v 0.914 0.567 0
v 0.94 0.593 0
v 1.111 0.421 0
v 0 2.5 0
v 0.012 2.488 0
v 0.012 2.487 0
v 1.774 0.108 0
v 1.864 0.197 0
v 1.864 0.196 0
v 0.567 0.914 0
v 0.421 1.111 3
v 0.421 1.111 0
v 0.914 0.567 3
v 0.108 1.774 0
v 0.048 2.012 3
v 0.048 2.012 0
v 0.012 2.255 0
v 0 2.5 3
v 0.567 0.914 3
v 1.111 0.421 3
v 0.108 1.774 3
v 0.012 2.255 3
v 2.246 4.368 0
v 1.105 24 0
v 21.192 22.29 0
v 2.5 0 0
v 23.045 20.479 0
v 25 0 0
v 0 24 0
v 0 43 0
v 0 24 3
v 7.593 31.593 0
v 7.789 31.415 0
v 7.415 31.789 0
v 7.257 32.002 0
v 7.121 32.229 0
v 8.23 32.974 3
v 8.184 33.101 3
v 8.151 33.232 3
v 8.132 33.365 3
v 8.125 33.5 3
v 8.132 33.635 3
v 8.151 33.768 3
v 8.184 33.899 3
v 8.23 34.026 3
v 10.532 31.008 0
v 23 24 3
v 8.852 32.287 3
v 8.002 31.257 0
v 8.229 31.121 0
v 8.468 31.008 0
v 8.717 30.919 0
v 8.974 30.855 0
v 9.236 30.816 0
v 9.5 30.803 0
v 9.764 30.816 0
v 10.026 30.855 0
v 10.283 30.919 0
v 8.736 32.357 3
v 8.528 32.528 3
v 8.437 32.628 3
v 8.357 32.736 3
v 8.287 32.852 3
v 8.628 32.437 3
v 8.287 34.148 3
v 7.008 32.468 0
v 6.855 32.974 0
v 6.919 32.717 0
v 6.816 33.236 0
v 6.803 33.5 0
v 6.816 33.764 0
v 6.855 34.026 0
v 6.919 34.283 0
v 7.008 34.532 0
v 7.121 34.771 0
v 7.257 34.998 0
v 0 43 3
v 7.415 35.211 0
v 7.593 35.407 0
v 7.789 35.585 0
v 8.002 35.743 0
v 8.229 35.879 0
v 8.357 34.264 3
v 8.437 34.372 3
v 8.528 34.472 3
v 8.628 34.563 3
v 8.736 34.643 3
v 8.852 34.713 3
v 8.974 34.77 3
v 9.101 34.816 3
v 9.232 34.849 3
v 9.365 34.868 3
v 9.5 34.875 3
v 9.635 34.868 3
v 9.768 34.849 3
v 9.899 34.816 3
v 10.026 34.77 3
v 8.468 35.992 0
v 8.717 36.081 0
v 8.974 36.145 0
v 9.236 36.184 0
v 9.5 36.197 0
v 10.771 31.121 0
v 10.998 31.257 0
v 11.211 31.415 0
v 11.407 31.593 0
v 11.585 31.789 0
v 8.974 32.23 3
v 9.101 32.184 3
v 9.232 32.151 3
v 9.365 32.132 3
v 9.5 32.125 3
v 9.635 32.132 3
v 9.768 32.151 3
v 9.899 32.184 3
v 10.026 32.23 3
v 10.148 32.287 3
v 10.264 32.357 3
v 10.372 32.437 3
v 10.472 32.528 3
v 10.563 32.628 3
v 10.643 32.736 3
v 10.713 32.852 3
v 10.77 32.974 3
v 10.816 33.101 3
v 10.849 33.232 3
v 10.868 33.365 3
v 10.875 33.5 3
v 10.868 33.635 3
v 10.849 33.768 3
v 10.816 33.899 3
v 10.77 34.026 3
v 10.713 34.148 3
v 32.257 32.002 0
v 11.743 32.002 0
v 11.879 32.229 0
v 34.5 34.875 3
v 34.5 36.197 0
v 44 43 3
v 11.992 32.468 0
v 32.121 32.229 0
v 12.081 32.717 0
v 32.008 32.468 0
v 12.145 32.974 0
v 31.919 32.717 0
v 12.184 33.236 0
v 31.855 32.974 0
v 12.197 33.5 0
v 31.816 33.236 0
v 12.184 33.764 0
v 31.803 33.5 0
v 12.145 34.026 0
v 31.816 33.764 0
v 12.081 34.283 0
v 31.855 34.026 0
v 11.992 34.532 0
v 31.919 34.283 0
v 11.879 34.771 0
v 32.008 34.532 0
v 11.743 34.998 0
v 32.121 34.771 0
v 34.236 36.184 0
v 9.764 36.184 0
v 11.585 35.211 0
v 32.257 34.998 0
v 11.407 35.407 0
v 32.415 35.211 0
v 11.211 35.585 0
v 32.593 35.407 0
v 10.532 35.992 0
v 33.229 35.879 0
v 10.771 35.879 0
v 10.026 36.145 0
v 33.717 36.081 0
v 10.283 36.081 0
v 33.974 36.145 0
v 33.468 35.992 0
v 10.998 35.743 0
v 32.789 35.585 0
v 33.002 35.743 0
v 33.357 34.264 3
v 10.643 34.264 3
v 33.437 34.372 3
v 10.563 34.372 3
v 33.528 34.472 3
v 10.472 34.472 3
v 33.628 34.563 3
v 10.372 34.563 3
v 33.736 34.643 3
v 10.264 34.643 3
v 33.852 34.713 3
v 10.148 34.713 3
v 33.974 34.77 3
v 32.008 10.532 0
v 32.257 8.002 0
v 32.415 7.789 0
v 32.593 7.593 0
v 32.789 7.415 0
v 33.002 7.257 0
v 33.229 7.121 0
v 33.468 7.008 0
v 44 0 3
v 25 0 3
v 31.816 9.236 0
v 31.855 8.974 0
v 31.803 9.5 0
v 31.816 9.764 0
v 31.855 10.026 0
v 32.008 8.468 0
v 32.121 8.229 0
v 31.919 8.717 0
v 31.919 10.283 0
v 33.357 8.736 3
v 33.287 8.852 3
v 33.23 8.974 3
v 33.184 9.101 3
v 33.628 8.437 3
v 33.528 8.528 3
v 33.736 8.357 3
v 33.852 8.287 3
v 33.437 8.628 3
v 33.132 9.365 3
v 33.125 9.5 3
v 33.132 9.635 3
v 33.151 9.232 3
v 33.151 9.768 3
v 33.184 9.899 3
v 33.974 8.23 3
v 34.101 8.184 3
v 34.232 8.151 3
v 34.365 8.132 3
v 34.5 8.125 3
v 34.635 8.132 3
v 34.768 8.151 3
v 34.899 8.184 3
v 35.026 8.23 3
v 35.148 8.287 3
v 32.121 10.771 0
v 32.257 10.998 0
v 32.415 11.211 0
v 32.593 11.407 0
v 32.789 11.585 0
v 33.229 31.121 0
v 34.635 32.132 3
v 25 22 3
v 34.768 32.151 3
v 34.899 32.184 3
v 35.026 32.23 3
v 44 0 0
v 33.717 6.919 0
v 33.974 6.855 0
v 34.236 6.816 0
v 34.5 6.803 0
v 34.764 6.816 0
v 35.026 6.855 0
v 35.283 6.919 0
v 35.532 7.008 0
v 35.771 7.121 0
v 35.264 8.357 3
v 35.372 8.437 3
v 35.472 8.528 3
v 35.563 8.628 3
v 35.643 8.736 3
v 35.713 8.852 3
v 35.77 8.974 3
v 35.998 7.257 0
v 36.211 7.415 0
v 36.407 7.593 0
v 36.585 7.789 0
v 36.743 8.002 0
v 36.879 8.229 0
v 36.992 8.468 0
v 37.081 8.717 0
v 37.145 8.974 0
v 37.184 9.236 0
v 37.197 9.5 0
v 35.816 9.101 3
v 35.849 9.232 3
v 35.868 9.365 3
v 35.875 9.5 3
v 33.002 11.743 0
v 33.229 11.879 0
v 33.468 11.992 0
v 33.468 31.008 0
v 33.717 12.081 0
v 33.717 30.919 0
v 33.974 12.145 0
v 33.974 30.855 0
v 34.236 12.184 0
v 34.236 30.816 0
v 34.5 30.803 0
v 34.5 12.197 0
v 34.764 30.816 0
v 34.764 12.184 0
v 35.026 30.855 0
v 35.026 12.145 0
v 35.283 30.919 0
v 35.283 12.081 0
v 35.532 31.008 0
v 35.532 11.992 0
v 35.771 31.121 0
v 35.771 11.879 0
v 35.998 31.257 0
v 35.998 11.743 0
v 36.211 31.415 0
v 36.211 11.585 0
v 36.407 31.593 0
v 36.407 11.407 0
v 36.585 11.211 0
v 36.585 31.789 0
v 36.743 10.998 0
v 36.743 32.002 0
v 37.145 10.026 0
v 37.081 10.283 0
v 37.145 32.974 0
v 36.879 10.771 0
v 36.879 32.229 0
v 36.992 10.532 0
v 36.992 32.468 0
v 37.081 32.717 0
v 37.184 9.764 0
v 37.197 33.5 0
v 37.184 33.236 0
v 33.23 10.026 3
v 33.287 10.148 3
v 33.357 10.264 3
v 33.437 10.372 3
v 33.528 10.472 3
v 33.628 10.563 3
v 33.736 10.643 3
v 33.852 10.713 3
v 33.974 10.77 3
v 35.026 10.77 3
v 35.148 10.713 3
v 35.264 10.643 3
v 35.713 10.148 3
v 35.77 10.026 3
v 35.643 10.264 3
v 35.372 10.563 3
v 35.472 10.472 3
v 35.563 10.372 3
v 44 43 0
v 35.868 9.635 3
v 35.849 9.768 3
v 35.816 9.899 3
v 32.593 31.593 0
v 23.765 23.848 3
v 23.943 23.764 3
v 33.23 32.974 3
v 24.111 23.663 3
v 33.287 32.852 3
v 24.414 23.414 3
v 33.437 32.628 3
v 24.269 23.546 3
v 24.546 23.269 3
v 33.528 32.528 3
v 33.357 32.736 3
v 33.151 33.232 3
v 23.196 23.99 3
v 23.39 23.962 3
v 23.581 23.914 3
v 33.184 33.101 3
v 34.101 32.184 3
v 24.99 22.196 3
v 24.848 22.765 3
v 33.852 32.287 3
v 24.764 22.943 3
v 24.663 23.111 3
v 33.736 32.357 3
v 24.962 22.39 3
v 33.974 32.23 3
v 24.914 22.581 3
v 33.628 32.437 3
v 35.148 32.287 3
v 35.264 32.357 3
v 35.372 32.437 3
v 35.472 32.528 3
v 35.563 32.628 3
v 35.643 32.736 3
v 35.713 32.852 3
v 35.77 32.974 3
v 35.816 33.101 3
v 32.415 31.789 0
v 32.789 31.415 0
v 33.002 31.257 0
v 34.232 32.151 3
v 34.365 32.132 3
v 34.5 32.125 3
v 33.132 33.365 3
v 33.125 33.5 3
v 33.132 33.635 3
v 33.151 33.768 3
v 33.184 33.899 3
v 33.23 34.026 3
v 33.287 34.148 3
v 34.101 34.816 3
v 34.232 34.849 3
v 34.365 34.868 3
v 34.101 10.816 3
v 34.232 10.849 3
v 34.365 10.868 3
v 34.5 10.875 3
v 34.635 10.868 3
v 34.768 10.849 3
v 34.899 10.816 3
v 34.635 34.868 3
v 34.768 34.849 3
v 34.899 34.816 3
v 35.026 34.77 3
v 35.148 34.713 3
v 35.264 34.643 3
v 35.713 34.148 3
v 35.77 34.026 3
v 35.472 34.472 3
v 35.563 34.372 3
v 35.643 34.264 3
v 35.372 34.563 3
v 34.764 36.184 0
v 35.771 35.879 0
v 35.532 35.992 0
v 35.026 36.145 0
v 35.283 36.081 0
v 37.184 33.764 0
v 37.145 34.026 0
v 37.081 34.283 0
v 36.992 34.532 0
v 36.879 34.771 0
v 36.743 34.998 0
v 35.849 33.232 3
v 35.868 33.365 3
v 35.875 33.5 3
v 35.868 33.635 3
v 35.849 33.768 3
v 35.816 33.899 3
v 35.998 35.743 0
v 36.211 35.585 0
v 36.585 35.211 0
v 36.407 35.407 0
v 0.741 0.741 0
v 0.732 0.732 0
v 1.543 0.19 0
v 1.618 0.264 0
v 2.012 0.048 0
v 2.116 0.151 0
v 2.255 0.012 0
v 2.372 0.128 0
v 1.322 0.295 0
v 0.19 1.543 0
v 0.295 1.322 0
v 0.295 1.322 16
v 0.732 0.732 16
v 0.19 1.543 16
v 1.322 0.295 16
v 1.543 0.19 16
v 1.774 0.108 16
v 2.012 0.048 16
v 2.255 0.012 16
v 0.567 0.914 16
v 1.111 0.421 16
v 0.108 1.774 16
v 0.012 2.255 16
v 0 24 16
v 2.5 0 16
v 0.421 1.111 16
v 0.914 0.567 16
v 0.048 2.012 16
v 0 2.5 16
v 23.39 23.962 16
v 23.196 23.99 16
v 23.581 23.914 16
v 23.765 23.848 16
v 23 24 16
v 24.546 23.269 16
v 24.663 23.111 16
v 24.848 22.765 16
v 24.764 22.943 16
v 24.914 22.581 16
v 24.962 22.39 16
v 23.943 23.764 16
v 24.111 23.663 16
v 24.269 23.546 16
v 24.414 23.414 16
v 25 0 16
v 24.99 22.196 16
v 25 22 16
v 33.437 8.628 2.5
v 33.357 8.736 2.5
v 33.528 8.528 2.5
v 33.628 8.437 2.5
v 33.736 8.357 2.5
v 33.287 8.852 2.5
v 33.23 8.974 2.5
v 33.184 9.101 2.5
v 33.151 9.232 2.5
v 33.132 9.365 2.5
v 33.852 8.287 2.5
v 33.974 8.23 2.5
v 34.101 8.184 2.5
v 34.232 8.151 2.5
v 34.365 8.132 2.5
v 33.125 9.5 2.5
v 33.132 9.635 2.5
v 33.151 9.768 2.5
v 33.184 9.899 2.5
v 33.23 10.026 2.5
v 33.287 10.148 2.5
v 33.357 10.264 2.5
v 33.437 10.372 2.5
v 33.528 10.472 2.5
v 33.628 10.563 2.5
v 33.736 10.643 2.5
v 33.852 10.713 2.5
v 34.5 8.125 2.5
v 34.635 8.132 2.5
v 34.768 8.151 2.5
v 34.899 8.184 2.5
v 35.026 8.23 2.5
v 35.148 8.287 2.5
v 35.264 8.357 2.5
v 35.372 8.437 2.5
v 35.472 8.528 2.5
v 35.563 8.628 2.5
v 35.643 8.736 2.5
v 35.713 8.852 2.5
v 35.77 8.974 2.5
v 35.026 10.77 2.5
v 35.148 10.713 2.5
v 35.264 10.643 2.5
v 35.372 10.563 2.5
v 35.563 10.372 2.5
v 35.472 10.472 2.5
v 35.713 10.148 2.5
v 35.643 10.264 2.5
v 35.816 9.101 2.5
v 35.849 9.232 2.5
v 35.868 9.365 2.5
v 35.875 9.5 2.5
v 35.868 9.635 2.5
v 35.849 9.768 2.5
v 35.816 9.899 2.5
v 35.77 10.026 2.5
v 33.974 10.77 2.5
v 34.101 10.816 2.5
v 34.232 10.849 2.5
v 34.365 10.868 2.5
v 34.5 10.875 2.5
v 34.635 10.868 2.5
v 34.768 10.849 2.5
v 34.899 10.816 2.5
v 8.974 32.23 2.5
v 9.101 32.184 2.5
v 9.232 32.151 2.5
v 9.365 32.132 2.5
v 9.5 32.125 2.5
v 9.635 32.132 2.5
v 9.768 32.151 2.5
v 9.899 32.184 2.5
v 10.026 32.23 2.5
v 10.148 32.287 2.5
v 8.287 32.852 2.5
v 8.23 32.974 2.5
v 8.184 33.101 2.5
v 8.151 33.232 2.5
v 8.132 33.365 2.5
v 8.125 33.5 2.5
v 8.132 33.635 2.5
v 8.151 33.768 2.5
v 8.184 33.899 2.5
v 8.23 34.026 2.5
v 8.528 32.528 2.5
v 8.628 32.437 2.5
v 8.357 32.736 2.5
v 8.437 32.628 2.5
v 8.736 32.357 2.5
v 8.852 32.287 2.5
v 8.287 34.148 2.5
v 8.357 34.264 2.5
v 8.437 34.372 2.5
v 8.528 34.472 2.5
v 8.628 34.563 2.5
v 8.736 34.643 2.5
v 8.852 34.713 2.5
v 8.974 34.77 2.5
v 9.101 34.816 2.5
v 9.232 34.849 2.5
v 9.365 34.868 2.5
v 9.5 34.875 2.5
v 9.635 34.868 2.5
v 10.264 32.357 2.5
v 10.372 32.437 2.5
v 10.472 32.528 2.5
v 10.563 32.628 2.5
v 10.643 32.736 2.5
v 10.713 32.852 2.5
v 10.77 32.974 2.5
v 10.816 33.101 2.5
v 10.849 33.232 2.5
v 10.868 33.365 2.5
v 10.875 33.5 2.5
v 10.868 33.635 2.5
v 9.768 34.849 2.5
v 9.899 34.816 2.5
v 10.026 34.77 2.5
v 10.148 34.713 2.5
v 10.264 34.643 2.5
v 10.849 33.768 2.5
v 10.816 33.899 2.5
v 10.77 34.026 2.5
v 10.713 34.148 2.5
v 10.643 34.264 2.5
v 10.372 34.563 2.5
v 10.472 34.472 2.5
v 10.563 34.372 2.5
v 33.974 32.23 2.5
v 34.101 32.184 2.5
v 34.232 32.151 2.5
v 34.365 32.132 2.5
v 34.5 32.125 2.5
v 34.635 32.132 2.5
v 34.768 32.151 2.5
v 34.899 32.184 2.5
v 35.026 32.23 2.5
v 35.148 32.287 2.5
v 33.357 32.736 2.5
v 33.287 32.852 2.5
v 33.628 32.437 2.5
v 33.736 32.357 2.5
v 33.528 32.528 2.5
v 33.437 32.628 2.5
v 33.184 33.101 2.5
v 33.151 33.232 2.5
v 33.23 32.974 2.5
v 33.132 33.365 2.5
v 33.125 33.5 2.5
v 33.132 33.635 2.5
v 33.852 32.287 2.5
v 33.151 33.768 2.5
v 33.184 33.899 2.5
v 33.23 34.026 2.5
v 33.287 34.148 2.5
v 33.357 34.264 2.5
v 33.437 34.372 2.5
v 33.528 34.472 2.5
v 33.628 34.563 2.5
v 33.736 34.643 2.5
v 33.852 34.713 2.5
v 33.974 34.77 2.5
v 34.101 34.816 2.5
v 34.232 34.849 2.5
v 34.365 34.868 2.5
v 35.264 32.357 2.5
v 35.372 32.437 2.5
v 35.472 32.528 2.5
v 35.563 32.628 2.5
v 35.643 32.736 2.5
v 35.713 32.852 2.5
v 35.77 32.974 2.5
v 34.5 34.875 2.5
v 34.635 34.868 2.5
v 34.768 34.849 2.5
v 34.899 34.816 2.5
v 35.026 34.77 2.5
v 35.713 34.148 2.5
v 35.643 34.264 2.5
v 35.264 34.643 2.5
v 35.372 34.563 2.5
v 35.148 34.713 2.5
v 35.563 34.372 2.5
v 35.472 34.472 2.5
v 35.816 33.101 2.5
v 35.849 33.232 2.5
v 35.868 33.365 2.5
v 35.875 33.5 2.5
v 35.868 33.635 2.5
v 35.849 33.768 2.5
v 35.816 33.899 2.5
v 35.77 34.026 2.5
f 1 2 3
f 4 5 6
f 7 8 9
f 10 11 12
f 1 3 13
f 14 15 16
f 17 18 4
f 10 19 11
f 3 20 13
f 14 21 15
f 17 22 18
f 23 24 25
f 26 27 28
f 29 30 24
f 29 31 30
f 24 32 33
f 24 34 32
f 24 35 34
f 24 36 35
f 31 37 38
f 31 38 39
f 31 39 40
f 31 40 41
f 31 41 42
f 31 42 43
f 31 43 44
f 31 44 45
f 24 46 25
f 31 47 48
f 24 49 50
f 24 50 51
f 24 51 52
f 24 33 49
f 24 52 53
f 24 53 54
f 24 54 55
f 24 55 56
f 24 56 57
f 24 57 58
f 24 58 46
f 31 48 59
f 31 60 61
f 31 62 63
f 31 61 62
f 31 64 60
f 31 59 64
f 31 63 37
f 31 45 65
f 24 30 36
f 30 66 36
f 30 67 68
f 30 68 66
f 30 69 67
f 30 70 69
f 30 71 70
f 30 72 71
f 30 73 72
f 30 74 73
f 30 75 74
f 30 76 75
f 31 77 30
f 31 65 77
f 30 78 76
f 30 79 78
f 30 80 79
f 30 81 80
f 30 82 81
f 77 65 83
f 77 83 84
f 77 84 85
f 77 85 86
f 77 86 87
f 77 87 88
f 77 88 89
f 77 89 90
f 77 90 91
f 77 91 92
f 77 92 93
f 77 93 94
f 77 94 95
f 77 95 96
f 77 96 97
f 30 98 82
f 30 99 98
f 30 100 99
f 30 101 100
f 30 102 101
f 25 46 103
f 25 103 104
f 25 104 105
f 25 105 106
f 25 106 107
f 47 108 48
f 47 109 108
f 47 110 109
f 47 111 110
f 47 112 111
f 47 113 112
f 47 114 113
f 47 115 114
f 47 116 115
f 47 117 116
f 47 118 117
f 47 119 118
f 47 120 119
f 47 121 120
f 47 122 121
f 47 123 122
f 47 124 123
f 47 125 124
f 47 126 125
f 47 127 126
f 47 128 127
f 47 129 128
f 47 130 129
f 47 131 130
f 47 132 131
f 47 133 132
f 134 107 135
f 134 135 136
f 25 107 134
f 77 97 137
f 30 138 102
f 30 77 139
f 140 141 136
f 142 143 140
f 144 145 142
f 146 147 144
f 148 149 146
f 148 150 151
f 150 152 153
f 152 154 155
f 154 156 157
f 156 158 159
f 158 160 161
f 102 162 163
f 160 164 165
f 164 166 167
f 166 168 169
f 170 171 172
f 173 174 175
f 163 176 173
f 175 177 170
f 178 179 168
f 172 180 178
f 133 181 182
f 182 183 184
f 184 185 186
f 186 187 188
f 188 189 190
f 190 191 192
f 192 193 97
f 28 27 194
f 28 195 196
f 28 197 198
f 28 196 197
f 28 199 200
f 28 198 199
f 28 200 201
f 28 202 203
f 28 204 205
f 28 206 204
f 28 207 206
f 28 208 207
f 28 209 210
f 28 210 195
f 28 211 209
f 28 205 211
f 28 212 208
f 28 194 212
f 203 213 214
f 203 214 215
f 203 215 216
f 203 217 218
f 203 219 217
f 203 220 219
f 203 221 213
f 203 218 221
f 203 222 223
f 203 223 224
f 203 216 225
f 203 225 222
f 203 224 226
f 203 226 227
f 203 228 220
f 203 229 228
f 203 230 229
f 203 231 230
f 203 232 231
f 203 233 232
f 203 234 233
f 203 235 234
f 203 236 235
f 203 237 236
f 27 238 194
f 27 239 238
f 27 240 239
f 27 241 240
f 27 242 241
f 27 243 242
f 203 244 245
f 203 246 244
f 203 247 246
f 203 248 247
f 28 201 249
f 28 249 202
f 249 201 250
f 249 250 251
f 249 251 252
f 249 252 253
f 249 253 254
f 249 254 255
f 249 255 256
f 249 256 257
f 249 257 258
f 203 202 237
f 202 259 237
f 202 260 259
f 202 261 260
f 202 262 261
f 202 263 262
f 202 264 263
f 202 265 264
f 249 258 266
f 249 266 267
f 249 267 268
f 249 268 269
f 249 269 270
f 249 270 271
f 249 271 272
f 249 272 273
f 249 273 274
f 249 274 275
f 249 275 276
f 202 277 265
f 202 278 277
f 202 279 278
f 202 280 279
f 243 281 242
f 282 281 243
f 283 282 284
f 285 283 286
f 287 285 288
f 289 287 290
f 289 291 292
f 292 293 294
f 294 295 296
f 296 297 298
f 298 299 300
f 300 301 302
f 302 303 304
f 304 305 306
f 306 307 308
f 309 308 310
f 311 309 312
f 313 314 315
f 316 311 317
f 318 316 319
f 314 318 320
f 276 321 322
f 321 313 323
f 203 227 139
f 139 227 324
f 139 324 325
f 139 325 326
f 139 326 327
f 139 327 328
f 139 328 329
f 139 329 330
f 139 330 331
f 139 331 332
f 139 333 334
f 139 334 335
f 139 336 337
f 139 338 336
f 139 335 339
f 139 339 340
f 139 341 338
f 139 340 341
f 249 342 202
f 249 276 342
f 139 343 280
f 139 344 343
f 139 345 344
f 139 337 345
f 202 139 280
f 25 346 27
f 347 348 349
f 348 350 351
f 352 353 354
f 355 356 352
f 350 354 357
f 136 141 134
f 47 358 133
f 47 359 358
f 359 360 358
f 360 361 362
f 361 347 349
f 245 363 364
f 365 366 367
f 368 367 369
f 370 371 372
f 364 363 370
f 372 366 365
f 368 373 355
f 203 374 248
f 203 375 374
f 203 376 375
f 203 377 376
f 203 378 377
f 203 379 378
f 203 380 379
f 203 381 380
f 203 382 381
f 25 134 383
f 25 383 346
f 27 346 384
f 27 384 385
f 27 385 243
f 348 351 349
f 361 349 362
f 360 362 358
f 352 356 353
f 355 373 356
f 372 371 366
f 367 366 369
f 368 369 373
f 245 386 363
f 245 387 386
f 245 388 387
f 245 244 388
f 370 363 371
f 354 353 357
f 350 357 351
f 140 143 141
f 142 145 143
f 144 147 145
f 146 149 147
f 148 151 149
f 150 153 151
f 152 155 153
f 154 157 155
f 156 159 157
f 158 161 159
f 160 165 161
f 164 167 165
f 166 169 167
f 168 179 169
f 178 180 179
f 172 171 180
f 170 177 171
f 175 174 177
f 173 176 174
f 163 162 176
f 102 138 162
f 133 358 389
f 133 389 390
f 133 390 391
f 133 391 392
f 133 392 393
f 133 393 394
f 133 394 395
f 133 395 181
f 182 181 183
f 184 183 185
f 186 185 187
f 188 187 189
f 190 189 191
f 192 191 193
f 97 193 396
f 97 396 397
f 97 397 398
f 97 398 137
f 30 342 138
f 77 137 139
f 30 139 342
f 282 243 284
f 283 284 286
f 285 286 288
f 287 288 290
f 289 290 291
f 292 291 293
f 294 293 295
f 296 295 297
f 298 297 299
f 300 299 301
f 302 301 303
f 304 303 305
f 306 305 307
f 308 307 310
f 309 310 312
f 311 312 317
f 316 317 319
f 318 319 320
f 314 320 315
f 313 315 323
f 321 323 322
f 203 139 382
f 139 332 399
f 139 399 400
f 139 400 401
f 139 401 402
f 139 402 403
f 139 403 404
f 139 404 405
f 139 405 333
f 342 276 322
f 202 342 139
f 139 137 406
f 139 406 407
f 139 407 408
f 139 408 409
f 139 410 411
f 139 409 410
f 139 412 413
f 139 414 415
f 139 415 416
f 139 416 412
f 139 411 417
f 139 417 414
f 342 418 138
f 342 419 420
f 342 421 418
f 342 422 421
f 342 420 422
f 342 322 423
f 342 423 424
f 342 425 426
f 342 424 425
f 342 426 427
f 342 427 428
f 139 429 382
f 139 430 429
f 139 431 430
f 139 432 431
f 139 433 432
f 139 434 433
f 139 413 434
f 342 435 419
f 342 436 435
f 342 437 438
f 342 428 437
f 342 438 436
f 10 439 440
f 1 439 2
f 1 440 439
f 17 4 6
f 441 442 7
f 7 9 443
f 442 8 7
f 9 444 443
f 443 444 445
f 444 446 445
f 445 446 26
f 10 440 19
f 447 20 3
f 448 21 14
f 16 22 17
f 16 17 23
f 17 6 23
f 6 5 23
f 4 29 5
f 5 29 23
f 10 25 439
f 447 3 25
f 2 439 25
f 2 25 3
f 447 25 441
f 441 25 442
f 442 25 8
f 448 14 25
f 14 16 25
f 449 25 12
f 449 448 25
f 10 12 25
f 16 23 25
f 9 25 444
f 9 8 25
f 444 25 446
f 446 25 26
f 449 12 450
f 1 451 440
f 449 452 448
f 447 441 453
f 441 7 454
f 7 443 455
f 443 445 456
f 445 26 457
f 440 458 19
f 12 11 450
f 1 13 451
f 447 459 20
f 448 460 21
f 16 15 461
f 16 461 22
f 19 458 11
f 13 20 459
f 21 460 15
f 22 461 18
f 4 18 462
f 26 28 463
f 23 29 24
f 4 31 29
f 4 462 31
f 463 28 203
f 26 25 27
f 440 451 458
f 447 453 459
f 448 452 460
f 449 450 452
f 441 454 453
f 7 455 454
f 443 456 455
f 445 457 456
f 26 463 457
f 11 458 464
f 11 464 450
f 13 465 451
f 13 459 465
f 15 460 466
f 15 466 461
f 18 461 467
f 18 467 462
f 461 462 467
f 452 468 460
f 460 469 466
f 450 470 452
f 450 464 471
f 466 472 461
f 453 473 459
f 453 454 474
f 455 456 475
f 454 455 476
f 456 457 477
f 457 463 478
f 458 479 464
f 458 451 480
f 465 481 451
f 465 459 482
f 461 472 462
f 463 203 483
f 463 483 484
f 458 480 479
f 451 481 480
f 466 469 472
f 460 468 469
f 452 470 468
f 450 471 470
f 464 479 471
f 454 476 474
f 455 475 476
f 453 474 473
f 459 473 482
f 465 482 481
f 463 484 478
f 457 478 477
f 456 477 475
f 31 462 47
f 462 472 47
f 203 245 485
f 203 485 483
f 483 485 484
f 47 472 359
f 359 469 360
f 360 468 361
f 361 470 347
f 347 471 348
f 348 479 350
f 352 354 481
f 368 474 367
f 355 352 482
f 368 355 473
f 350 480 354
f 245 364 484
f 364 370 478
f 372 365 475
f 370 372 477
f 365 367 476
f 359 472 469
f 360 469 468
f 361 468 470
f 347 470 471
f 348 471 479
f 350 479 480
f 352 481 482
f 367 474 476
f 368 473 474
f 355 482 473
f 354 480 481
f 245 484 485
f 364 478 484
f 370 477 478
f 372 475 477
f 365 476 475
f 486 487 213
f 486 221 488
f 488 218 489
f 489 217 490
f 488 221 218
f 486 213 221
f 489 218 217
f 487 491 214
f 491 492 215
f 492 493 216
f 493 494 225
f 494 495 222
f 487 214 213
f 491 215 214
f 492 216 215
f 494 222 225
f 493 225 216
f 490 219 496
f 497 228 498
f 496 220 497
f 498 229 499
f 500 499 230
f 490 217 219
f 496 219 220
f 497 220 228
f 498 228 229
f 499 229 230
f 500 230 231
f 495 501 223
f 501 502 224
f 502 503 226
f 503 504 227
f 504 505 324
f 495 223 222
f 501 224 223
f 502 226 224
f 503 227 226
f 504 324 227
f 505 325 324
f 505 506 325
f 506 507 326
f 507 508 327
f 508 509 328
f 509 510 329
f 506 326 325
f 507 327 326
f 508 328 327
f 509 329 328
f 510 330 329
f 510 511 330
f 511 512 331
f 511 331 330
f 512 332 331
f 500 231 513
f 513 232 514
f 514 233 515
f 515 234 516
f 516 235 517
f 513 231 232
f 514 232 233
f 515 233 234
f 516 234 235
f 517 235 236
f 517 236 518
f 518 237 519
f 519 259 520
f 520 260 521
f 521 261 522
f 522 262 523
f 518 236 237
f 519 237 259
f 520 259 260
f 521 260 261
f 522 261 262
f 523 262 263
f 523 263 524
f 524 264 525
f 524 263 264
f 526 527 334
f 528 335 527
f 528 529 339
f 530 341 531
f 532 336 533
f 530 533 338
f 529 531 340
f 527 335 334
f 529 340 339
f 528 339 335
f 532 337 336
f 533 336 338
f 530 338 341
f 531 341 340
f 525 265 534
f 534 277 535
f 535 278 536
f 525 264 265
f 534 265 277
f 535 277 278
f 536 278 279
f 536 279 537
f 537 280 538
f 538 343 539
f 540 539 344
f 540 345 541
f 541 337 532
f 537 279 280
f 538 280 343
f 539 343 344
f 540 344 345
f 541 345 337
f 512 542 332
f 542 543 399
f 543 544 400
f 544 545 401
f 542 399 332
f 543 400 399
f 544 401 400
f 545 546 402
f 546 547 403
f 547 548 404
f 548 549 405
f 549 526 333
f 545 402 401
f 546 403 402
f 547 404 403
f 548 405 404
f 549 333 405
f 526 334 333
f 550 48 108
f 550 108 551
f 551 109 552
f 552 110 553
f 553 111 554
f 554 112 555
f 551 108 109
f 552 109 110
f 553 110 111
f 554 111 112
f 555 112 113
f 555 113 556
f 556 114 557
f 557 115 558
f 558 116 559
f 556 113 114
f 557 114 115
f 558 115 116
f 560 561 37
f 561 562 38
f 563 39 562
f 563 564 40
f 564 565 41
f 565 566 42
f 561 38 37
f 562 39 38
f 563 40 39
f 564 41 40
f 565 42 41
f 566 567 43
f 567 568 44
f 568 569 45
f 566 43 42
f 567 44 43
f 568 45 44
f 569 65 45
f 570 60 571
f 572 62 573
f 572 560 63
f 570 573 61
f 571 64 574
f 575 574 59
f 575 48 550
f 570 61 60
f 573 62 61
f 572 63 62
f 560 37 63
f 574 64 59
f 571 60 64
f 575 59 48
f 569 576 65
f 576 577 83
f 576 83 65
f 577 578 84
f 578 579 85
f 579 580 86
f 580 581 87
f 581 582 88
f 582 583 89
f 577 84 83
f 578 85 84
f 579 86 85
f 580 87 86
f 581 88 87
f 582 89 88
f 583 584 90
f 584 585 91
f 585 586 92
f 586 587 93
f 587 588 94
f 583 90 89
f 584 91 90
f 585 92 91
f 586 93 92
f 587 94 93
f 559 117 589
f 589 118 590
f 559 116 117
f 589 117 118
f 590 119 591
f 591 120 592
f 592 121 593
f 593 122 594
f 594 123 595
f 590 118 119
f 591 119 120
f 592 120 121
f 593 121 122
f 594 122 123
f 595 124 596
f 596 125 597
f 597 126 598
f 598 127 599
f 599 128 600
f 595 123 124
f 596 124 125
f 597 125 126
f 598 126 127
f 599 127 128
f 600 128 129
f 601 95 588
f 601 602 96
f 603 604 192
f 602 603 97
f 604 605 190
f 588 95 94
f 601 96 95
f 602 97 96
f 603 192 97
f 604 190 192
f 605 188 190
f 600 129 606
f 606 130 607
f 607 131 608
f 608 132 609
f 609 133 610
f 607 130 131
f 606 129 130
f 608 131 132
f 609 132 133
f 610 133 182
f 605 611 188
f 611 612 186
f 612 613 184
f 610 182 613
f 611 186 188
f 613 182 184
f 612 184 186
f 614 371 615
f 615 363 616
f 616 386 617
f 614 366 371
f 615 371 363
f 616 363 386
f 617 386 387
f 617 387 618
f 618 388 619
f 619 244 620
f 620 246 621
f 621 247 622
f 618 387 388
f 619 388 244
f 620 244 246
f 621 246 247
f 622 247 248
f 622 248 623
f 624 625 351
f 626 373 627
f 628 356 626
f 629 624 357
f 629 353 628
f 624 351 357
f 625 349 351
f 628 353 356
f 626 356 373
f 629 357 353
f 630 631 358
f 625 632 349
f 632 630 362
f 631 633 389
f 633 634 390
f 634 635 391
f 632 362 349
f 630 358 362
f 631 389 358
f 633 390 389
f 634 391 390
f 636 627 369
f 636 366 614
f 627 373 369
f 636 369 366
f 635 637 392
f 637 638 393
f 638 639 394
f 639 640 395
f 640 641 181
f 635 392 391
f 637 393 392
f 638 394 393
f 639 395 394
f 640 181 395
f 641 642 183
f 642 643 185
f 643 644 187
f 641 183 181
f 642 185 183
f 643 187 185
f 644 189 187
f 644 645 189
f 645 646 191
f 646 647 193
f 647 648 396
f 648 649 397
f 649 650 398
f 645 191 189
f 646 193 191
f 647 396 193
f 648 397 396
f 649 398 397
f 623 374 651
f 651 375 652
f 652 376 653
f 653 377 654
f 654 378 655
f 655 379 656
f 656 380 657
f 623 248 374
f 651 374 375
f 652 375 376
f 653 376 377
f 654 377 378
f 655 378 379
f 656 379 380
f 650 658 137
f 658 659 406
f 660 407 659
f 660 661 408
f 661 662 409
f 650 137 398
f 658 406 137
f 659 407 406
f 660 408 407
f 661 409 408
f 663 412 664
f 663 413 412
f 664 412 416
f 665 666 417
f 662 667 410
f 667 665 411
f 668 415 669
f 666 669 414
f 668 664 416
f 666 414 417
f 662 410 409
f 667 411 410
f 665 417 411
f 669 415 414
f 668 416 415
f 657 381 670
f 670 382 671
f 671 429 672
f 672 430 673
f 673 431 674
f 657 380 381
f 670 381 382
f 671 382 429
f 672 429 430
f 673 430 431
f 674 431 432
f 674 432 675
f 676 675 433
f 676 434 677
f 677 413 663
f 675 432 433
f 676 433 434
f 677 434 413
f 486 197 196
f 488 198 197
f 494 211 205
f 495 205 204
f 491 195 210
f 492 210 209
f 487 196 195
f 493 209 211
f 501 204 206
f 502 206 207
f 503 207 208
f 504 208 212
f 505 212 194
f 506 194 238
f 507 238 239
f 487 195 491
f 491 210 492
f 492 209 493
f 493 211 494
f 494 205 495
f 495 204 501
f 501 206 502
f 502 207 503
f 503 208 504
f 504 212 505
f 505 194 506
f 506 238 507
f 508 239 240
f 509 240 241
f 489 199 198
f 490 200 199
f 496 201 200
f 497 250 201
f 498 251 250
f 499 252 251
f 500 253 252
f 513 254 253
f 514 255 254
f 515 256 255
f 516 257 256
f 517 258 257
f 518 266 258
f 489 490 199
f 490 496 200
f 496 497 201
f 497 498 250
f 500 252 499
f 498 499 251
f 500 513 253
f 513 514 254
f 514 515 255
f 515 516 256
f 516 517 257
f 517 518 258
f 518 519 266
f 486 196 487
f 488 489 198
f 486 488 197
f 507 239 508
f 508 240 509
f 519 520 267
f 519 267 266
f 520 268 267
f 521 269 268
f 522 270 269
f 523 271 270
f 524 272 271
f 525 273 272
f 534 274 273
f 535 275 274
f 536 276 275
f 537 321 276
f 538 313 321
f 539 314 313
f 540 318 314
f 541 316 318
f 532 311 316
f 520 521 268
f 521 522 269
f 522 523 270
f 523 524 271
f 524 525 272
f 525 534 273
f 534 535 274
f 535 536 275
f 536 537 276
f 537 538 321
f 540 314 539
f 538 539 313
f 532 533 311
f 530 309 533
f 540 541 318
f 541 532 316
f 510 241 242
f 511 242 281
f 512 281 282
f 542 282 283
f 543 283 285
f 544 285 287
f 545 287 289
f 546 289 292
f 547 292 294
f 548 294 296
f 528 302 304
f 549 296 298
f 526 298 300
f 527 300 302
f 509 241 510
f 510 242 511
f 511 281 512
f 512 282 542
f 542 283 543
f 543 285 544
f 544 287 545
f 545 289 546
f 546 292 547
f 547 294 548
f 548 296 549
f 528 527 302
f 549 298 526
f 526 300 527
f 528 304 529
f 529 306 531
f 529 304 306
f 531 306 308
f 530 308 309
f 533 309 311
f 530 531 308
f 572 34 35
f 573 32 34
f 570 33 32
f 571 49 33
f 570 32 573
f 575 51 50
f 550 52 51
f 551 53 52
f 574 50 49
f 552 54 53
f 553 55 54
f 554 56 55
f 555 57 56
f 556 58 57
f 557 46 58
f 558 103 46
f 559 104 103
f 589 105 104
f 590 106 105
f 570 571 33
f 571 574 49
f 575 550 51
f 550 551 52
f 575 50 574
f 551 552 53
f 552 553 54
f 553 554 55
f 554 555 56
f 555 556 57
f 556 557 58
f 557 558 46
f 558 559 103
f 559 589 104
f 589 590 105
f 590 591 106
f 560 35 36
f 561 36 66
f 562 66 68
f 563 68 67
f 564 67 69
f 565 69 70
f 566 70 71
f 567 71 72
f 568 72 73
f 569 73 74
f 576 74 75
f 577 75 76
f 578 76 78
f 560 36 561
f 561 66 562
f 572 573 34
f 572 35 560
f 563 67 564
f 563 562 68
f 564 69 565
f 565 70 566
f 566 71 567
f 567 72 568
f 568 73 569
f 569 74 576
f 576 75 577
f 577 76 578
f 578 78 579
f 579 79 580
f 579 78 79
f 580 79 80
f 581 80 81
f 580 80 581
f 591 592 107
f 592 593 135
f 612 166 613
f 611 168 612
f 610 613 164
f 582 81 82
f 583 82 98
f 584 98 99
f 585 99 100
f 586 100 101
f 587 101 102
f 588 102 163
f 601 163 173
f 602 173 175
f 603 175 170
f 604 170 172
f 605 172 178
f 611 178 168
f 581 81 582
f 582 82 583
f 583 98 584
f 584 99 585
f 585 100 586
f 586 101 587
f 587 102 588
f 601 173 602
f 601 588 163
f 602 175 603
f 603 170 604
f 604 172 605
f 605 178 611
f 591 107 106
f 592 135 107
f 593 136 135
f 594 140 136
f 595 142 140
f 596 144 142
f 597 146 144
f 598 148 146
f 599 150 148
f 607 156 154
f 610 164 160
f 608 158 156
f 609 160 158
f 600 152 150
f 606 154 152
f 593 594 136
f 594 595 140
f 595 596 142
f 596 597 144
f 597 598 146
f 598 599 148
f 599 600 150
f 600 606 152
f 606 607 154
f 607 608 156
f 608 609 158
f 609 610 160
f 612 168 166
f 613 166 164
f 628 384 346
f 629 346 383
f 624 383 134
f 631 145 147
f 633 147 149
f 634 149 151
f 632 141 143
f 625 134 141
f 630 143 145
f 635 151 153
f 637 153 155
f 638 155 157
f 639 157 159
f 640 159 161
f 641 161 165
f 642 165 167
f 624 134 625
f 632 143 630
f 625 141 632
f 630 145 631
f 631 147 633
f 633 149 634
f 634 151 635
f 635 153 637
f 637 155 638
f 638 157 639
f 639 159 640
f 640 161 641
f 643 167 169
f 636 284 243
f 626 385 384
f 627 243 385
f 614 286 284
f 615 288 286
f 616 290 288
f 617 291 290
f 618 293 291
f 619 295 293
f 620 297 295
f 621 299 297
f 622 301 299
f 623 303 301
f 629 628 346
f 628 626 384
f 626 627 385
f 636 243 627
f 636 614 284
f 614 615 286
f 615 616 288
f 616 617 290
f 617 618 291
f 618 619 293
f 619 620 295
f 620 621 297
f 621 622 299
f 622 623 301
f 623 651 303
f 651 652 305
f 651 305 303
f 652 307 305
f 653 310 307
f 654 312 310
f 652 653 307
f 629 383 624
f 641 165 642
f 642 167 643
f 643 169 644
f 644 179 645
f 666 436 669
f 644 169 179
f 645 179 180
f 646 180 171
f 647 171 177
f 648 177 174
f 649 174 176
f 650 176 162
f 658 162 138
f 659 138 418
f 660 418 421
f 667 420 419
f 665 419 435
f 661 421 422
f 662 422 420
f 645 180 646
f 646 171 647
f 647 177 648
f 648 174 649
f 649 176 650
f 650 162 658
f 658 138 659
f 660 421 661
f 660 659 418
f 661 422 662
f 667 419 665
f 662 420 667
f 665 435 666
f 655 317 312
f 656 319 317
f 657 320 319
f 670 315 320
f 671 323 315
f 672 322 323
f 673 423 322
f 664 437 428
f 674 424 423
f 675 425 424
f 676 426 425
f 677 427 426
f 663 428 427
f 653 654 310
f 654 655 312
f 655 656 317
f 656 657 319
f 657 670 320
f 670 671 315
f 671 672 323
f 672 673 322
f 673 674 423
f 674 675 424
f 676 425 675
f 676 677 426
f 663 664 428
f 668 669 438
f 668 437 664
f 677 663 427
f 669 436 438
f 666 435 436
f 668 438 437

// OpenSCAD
// Plate with a raised lower-left corner section.
// Includes three countersunk screw holes in the non-raised L-shaped region.

raised_width = 25;
raised_depth = 24;
raised_extra_height = 13;

base_width = 19 + raised_width;
base_depth = 19 + raised_depth;
base_height = 3;

screw_head_diameter = 5.5;
screw_shaft_diameter = 2.75;
screw_taper_height = 2.5;

// Rounding controls
shared_corner_radius = 2.5;  // shared base/raised lower-left corner side
inside_corner_radius = 2;    // inside corner of raised section (top-right of raised block)

hole_edge_offset = (base_width - raised_width) / 2;
hole_positions = [
  [hole_edge_offset, base_depth - hole_edge_offset],                  // top-left end
  [base_width - hole_edge_offset, base_depth - hole_edge_offset],     // top-right corner
  [base_width - hole_edge_offset, hole_edge_offset]                   // bottom-right end
];

module rounded_bl_rect(width, depth, radius) {
  union() {
    translate([radius, 0])
      square([width - radius, depth]);
    translate([0, radius])
      square([width, depth - radius]);
    translate([radius, radius])
      circle(r = radius, $fn = 64);
  }
}

module rounded_bl_tr_rect(width, depth, bl_radius, tr_radius) {
  union() {
    difference() {
      rounded_bl_rect(width, depth, bl_radius);
      translate([width - tr_radius, depth - tr_radius])
        square([tr_radius, tr_radius]);
    }

    translate([width - tr_radius, depth - tr_radius])
      intersection() {
        circle(r = tr_radius, $fn = 64);
        square([tr_radius, tr_radius]);
      }
  }
}

module countersunk_hole() {
  // Through shaft.
  translate([0, 0, -0.1])
    cylinder(h = base_height + 0.2, d = screw_shaft_diameter, $fn = 64);

  // Taper on the underside.
  taper_depth = min(screw_taper_height, base_height);
  translate([0, 0, -0.1])
    cylinder(
      h = taper_depth + 0.1,
      d1 = screw_head_diameter,
      d2 = screw_shaft_diameter,
      $fn = 64
    );
}

difference() {
  union() {
    // Bottom plate with rounded shared corner.
    linear_extrude(height = base_height)
      rounded_bl_rect(base_width, base_depth, shared_corner_radius);

    // Raised lower-left section with rounded shared corner and inside corner.
    linear_extrude(height = base_height + raised_extra_height)
      rounded_bl_tr_rect(raised_width, raised_depth, shared_corner_radius, inside_corner_radius);
  }

  // Three countersunk holes in the non-raised area.
  for (pos = hole_positions) {
    translate([pos[0], pos[1], 0])
      countersunk_hole();
  }
}
